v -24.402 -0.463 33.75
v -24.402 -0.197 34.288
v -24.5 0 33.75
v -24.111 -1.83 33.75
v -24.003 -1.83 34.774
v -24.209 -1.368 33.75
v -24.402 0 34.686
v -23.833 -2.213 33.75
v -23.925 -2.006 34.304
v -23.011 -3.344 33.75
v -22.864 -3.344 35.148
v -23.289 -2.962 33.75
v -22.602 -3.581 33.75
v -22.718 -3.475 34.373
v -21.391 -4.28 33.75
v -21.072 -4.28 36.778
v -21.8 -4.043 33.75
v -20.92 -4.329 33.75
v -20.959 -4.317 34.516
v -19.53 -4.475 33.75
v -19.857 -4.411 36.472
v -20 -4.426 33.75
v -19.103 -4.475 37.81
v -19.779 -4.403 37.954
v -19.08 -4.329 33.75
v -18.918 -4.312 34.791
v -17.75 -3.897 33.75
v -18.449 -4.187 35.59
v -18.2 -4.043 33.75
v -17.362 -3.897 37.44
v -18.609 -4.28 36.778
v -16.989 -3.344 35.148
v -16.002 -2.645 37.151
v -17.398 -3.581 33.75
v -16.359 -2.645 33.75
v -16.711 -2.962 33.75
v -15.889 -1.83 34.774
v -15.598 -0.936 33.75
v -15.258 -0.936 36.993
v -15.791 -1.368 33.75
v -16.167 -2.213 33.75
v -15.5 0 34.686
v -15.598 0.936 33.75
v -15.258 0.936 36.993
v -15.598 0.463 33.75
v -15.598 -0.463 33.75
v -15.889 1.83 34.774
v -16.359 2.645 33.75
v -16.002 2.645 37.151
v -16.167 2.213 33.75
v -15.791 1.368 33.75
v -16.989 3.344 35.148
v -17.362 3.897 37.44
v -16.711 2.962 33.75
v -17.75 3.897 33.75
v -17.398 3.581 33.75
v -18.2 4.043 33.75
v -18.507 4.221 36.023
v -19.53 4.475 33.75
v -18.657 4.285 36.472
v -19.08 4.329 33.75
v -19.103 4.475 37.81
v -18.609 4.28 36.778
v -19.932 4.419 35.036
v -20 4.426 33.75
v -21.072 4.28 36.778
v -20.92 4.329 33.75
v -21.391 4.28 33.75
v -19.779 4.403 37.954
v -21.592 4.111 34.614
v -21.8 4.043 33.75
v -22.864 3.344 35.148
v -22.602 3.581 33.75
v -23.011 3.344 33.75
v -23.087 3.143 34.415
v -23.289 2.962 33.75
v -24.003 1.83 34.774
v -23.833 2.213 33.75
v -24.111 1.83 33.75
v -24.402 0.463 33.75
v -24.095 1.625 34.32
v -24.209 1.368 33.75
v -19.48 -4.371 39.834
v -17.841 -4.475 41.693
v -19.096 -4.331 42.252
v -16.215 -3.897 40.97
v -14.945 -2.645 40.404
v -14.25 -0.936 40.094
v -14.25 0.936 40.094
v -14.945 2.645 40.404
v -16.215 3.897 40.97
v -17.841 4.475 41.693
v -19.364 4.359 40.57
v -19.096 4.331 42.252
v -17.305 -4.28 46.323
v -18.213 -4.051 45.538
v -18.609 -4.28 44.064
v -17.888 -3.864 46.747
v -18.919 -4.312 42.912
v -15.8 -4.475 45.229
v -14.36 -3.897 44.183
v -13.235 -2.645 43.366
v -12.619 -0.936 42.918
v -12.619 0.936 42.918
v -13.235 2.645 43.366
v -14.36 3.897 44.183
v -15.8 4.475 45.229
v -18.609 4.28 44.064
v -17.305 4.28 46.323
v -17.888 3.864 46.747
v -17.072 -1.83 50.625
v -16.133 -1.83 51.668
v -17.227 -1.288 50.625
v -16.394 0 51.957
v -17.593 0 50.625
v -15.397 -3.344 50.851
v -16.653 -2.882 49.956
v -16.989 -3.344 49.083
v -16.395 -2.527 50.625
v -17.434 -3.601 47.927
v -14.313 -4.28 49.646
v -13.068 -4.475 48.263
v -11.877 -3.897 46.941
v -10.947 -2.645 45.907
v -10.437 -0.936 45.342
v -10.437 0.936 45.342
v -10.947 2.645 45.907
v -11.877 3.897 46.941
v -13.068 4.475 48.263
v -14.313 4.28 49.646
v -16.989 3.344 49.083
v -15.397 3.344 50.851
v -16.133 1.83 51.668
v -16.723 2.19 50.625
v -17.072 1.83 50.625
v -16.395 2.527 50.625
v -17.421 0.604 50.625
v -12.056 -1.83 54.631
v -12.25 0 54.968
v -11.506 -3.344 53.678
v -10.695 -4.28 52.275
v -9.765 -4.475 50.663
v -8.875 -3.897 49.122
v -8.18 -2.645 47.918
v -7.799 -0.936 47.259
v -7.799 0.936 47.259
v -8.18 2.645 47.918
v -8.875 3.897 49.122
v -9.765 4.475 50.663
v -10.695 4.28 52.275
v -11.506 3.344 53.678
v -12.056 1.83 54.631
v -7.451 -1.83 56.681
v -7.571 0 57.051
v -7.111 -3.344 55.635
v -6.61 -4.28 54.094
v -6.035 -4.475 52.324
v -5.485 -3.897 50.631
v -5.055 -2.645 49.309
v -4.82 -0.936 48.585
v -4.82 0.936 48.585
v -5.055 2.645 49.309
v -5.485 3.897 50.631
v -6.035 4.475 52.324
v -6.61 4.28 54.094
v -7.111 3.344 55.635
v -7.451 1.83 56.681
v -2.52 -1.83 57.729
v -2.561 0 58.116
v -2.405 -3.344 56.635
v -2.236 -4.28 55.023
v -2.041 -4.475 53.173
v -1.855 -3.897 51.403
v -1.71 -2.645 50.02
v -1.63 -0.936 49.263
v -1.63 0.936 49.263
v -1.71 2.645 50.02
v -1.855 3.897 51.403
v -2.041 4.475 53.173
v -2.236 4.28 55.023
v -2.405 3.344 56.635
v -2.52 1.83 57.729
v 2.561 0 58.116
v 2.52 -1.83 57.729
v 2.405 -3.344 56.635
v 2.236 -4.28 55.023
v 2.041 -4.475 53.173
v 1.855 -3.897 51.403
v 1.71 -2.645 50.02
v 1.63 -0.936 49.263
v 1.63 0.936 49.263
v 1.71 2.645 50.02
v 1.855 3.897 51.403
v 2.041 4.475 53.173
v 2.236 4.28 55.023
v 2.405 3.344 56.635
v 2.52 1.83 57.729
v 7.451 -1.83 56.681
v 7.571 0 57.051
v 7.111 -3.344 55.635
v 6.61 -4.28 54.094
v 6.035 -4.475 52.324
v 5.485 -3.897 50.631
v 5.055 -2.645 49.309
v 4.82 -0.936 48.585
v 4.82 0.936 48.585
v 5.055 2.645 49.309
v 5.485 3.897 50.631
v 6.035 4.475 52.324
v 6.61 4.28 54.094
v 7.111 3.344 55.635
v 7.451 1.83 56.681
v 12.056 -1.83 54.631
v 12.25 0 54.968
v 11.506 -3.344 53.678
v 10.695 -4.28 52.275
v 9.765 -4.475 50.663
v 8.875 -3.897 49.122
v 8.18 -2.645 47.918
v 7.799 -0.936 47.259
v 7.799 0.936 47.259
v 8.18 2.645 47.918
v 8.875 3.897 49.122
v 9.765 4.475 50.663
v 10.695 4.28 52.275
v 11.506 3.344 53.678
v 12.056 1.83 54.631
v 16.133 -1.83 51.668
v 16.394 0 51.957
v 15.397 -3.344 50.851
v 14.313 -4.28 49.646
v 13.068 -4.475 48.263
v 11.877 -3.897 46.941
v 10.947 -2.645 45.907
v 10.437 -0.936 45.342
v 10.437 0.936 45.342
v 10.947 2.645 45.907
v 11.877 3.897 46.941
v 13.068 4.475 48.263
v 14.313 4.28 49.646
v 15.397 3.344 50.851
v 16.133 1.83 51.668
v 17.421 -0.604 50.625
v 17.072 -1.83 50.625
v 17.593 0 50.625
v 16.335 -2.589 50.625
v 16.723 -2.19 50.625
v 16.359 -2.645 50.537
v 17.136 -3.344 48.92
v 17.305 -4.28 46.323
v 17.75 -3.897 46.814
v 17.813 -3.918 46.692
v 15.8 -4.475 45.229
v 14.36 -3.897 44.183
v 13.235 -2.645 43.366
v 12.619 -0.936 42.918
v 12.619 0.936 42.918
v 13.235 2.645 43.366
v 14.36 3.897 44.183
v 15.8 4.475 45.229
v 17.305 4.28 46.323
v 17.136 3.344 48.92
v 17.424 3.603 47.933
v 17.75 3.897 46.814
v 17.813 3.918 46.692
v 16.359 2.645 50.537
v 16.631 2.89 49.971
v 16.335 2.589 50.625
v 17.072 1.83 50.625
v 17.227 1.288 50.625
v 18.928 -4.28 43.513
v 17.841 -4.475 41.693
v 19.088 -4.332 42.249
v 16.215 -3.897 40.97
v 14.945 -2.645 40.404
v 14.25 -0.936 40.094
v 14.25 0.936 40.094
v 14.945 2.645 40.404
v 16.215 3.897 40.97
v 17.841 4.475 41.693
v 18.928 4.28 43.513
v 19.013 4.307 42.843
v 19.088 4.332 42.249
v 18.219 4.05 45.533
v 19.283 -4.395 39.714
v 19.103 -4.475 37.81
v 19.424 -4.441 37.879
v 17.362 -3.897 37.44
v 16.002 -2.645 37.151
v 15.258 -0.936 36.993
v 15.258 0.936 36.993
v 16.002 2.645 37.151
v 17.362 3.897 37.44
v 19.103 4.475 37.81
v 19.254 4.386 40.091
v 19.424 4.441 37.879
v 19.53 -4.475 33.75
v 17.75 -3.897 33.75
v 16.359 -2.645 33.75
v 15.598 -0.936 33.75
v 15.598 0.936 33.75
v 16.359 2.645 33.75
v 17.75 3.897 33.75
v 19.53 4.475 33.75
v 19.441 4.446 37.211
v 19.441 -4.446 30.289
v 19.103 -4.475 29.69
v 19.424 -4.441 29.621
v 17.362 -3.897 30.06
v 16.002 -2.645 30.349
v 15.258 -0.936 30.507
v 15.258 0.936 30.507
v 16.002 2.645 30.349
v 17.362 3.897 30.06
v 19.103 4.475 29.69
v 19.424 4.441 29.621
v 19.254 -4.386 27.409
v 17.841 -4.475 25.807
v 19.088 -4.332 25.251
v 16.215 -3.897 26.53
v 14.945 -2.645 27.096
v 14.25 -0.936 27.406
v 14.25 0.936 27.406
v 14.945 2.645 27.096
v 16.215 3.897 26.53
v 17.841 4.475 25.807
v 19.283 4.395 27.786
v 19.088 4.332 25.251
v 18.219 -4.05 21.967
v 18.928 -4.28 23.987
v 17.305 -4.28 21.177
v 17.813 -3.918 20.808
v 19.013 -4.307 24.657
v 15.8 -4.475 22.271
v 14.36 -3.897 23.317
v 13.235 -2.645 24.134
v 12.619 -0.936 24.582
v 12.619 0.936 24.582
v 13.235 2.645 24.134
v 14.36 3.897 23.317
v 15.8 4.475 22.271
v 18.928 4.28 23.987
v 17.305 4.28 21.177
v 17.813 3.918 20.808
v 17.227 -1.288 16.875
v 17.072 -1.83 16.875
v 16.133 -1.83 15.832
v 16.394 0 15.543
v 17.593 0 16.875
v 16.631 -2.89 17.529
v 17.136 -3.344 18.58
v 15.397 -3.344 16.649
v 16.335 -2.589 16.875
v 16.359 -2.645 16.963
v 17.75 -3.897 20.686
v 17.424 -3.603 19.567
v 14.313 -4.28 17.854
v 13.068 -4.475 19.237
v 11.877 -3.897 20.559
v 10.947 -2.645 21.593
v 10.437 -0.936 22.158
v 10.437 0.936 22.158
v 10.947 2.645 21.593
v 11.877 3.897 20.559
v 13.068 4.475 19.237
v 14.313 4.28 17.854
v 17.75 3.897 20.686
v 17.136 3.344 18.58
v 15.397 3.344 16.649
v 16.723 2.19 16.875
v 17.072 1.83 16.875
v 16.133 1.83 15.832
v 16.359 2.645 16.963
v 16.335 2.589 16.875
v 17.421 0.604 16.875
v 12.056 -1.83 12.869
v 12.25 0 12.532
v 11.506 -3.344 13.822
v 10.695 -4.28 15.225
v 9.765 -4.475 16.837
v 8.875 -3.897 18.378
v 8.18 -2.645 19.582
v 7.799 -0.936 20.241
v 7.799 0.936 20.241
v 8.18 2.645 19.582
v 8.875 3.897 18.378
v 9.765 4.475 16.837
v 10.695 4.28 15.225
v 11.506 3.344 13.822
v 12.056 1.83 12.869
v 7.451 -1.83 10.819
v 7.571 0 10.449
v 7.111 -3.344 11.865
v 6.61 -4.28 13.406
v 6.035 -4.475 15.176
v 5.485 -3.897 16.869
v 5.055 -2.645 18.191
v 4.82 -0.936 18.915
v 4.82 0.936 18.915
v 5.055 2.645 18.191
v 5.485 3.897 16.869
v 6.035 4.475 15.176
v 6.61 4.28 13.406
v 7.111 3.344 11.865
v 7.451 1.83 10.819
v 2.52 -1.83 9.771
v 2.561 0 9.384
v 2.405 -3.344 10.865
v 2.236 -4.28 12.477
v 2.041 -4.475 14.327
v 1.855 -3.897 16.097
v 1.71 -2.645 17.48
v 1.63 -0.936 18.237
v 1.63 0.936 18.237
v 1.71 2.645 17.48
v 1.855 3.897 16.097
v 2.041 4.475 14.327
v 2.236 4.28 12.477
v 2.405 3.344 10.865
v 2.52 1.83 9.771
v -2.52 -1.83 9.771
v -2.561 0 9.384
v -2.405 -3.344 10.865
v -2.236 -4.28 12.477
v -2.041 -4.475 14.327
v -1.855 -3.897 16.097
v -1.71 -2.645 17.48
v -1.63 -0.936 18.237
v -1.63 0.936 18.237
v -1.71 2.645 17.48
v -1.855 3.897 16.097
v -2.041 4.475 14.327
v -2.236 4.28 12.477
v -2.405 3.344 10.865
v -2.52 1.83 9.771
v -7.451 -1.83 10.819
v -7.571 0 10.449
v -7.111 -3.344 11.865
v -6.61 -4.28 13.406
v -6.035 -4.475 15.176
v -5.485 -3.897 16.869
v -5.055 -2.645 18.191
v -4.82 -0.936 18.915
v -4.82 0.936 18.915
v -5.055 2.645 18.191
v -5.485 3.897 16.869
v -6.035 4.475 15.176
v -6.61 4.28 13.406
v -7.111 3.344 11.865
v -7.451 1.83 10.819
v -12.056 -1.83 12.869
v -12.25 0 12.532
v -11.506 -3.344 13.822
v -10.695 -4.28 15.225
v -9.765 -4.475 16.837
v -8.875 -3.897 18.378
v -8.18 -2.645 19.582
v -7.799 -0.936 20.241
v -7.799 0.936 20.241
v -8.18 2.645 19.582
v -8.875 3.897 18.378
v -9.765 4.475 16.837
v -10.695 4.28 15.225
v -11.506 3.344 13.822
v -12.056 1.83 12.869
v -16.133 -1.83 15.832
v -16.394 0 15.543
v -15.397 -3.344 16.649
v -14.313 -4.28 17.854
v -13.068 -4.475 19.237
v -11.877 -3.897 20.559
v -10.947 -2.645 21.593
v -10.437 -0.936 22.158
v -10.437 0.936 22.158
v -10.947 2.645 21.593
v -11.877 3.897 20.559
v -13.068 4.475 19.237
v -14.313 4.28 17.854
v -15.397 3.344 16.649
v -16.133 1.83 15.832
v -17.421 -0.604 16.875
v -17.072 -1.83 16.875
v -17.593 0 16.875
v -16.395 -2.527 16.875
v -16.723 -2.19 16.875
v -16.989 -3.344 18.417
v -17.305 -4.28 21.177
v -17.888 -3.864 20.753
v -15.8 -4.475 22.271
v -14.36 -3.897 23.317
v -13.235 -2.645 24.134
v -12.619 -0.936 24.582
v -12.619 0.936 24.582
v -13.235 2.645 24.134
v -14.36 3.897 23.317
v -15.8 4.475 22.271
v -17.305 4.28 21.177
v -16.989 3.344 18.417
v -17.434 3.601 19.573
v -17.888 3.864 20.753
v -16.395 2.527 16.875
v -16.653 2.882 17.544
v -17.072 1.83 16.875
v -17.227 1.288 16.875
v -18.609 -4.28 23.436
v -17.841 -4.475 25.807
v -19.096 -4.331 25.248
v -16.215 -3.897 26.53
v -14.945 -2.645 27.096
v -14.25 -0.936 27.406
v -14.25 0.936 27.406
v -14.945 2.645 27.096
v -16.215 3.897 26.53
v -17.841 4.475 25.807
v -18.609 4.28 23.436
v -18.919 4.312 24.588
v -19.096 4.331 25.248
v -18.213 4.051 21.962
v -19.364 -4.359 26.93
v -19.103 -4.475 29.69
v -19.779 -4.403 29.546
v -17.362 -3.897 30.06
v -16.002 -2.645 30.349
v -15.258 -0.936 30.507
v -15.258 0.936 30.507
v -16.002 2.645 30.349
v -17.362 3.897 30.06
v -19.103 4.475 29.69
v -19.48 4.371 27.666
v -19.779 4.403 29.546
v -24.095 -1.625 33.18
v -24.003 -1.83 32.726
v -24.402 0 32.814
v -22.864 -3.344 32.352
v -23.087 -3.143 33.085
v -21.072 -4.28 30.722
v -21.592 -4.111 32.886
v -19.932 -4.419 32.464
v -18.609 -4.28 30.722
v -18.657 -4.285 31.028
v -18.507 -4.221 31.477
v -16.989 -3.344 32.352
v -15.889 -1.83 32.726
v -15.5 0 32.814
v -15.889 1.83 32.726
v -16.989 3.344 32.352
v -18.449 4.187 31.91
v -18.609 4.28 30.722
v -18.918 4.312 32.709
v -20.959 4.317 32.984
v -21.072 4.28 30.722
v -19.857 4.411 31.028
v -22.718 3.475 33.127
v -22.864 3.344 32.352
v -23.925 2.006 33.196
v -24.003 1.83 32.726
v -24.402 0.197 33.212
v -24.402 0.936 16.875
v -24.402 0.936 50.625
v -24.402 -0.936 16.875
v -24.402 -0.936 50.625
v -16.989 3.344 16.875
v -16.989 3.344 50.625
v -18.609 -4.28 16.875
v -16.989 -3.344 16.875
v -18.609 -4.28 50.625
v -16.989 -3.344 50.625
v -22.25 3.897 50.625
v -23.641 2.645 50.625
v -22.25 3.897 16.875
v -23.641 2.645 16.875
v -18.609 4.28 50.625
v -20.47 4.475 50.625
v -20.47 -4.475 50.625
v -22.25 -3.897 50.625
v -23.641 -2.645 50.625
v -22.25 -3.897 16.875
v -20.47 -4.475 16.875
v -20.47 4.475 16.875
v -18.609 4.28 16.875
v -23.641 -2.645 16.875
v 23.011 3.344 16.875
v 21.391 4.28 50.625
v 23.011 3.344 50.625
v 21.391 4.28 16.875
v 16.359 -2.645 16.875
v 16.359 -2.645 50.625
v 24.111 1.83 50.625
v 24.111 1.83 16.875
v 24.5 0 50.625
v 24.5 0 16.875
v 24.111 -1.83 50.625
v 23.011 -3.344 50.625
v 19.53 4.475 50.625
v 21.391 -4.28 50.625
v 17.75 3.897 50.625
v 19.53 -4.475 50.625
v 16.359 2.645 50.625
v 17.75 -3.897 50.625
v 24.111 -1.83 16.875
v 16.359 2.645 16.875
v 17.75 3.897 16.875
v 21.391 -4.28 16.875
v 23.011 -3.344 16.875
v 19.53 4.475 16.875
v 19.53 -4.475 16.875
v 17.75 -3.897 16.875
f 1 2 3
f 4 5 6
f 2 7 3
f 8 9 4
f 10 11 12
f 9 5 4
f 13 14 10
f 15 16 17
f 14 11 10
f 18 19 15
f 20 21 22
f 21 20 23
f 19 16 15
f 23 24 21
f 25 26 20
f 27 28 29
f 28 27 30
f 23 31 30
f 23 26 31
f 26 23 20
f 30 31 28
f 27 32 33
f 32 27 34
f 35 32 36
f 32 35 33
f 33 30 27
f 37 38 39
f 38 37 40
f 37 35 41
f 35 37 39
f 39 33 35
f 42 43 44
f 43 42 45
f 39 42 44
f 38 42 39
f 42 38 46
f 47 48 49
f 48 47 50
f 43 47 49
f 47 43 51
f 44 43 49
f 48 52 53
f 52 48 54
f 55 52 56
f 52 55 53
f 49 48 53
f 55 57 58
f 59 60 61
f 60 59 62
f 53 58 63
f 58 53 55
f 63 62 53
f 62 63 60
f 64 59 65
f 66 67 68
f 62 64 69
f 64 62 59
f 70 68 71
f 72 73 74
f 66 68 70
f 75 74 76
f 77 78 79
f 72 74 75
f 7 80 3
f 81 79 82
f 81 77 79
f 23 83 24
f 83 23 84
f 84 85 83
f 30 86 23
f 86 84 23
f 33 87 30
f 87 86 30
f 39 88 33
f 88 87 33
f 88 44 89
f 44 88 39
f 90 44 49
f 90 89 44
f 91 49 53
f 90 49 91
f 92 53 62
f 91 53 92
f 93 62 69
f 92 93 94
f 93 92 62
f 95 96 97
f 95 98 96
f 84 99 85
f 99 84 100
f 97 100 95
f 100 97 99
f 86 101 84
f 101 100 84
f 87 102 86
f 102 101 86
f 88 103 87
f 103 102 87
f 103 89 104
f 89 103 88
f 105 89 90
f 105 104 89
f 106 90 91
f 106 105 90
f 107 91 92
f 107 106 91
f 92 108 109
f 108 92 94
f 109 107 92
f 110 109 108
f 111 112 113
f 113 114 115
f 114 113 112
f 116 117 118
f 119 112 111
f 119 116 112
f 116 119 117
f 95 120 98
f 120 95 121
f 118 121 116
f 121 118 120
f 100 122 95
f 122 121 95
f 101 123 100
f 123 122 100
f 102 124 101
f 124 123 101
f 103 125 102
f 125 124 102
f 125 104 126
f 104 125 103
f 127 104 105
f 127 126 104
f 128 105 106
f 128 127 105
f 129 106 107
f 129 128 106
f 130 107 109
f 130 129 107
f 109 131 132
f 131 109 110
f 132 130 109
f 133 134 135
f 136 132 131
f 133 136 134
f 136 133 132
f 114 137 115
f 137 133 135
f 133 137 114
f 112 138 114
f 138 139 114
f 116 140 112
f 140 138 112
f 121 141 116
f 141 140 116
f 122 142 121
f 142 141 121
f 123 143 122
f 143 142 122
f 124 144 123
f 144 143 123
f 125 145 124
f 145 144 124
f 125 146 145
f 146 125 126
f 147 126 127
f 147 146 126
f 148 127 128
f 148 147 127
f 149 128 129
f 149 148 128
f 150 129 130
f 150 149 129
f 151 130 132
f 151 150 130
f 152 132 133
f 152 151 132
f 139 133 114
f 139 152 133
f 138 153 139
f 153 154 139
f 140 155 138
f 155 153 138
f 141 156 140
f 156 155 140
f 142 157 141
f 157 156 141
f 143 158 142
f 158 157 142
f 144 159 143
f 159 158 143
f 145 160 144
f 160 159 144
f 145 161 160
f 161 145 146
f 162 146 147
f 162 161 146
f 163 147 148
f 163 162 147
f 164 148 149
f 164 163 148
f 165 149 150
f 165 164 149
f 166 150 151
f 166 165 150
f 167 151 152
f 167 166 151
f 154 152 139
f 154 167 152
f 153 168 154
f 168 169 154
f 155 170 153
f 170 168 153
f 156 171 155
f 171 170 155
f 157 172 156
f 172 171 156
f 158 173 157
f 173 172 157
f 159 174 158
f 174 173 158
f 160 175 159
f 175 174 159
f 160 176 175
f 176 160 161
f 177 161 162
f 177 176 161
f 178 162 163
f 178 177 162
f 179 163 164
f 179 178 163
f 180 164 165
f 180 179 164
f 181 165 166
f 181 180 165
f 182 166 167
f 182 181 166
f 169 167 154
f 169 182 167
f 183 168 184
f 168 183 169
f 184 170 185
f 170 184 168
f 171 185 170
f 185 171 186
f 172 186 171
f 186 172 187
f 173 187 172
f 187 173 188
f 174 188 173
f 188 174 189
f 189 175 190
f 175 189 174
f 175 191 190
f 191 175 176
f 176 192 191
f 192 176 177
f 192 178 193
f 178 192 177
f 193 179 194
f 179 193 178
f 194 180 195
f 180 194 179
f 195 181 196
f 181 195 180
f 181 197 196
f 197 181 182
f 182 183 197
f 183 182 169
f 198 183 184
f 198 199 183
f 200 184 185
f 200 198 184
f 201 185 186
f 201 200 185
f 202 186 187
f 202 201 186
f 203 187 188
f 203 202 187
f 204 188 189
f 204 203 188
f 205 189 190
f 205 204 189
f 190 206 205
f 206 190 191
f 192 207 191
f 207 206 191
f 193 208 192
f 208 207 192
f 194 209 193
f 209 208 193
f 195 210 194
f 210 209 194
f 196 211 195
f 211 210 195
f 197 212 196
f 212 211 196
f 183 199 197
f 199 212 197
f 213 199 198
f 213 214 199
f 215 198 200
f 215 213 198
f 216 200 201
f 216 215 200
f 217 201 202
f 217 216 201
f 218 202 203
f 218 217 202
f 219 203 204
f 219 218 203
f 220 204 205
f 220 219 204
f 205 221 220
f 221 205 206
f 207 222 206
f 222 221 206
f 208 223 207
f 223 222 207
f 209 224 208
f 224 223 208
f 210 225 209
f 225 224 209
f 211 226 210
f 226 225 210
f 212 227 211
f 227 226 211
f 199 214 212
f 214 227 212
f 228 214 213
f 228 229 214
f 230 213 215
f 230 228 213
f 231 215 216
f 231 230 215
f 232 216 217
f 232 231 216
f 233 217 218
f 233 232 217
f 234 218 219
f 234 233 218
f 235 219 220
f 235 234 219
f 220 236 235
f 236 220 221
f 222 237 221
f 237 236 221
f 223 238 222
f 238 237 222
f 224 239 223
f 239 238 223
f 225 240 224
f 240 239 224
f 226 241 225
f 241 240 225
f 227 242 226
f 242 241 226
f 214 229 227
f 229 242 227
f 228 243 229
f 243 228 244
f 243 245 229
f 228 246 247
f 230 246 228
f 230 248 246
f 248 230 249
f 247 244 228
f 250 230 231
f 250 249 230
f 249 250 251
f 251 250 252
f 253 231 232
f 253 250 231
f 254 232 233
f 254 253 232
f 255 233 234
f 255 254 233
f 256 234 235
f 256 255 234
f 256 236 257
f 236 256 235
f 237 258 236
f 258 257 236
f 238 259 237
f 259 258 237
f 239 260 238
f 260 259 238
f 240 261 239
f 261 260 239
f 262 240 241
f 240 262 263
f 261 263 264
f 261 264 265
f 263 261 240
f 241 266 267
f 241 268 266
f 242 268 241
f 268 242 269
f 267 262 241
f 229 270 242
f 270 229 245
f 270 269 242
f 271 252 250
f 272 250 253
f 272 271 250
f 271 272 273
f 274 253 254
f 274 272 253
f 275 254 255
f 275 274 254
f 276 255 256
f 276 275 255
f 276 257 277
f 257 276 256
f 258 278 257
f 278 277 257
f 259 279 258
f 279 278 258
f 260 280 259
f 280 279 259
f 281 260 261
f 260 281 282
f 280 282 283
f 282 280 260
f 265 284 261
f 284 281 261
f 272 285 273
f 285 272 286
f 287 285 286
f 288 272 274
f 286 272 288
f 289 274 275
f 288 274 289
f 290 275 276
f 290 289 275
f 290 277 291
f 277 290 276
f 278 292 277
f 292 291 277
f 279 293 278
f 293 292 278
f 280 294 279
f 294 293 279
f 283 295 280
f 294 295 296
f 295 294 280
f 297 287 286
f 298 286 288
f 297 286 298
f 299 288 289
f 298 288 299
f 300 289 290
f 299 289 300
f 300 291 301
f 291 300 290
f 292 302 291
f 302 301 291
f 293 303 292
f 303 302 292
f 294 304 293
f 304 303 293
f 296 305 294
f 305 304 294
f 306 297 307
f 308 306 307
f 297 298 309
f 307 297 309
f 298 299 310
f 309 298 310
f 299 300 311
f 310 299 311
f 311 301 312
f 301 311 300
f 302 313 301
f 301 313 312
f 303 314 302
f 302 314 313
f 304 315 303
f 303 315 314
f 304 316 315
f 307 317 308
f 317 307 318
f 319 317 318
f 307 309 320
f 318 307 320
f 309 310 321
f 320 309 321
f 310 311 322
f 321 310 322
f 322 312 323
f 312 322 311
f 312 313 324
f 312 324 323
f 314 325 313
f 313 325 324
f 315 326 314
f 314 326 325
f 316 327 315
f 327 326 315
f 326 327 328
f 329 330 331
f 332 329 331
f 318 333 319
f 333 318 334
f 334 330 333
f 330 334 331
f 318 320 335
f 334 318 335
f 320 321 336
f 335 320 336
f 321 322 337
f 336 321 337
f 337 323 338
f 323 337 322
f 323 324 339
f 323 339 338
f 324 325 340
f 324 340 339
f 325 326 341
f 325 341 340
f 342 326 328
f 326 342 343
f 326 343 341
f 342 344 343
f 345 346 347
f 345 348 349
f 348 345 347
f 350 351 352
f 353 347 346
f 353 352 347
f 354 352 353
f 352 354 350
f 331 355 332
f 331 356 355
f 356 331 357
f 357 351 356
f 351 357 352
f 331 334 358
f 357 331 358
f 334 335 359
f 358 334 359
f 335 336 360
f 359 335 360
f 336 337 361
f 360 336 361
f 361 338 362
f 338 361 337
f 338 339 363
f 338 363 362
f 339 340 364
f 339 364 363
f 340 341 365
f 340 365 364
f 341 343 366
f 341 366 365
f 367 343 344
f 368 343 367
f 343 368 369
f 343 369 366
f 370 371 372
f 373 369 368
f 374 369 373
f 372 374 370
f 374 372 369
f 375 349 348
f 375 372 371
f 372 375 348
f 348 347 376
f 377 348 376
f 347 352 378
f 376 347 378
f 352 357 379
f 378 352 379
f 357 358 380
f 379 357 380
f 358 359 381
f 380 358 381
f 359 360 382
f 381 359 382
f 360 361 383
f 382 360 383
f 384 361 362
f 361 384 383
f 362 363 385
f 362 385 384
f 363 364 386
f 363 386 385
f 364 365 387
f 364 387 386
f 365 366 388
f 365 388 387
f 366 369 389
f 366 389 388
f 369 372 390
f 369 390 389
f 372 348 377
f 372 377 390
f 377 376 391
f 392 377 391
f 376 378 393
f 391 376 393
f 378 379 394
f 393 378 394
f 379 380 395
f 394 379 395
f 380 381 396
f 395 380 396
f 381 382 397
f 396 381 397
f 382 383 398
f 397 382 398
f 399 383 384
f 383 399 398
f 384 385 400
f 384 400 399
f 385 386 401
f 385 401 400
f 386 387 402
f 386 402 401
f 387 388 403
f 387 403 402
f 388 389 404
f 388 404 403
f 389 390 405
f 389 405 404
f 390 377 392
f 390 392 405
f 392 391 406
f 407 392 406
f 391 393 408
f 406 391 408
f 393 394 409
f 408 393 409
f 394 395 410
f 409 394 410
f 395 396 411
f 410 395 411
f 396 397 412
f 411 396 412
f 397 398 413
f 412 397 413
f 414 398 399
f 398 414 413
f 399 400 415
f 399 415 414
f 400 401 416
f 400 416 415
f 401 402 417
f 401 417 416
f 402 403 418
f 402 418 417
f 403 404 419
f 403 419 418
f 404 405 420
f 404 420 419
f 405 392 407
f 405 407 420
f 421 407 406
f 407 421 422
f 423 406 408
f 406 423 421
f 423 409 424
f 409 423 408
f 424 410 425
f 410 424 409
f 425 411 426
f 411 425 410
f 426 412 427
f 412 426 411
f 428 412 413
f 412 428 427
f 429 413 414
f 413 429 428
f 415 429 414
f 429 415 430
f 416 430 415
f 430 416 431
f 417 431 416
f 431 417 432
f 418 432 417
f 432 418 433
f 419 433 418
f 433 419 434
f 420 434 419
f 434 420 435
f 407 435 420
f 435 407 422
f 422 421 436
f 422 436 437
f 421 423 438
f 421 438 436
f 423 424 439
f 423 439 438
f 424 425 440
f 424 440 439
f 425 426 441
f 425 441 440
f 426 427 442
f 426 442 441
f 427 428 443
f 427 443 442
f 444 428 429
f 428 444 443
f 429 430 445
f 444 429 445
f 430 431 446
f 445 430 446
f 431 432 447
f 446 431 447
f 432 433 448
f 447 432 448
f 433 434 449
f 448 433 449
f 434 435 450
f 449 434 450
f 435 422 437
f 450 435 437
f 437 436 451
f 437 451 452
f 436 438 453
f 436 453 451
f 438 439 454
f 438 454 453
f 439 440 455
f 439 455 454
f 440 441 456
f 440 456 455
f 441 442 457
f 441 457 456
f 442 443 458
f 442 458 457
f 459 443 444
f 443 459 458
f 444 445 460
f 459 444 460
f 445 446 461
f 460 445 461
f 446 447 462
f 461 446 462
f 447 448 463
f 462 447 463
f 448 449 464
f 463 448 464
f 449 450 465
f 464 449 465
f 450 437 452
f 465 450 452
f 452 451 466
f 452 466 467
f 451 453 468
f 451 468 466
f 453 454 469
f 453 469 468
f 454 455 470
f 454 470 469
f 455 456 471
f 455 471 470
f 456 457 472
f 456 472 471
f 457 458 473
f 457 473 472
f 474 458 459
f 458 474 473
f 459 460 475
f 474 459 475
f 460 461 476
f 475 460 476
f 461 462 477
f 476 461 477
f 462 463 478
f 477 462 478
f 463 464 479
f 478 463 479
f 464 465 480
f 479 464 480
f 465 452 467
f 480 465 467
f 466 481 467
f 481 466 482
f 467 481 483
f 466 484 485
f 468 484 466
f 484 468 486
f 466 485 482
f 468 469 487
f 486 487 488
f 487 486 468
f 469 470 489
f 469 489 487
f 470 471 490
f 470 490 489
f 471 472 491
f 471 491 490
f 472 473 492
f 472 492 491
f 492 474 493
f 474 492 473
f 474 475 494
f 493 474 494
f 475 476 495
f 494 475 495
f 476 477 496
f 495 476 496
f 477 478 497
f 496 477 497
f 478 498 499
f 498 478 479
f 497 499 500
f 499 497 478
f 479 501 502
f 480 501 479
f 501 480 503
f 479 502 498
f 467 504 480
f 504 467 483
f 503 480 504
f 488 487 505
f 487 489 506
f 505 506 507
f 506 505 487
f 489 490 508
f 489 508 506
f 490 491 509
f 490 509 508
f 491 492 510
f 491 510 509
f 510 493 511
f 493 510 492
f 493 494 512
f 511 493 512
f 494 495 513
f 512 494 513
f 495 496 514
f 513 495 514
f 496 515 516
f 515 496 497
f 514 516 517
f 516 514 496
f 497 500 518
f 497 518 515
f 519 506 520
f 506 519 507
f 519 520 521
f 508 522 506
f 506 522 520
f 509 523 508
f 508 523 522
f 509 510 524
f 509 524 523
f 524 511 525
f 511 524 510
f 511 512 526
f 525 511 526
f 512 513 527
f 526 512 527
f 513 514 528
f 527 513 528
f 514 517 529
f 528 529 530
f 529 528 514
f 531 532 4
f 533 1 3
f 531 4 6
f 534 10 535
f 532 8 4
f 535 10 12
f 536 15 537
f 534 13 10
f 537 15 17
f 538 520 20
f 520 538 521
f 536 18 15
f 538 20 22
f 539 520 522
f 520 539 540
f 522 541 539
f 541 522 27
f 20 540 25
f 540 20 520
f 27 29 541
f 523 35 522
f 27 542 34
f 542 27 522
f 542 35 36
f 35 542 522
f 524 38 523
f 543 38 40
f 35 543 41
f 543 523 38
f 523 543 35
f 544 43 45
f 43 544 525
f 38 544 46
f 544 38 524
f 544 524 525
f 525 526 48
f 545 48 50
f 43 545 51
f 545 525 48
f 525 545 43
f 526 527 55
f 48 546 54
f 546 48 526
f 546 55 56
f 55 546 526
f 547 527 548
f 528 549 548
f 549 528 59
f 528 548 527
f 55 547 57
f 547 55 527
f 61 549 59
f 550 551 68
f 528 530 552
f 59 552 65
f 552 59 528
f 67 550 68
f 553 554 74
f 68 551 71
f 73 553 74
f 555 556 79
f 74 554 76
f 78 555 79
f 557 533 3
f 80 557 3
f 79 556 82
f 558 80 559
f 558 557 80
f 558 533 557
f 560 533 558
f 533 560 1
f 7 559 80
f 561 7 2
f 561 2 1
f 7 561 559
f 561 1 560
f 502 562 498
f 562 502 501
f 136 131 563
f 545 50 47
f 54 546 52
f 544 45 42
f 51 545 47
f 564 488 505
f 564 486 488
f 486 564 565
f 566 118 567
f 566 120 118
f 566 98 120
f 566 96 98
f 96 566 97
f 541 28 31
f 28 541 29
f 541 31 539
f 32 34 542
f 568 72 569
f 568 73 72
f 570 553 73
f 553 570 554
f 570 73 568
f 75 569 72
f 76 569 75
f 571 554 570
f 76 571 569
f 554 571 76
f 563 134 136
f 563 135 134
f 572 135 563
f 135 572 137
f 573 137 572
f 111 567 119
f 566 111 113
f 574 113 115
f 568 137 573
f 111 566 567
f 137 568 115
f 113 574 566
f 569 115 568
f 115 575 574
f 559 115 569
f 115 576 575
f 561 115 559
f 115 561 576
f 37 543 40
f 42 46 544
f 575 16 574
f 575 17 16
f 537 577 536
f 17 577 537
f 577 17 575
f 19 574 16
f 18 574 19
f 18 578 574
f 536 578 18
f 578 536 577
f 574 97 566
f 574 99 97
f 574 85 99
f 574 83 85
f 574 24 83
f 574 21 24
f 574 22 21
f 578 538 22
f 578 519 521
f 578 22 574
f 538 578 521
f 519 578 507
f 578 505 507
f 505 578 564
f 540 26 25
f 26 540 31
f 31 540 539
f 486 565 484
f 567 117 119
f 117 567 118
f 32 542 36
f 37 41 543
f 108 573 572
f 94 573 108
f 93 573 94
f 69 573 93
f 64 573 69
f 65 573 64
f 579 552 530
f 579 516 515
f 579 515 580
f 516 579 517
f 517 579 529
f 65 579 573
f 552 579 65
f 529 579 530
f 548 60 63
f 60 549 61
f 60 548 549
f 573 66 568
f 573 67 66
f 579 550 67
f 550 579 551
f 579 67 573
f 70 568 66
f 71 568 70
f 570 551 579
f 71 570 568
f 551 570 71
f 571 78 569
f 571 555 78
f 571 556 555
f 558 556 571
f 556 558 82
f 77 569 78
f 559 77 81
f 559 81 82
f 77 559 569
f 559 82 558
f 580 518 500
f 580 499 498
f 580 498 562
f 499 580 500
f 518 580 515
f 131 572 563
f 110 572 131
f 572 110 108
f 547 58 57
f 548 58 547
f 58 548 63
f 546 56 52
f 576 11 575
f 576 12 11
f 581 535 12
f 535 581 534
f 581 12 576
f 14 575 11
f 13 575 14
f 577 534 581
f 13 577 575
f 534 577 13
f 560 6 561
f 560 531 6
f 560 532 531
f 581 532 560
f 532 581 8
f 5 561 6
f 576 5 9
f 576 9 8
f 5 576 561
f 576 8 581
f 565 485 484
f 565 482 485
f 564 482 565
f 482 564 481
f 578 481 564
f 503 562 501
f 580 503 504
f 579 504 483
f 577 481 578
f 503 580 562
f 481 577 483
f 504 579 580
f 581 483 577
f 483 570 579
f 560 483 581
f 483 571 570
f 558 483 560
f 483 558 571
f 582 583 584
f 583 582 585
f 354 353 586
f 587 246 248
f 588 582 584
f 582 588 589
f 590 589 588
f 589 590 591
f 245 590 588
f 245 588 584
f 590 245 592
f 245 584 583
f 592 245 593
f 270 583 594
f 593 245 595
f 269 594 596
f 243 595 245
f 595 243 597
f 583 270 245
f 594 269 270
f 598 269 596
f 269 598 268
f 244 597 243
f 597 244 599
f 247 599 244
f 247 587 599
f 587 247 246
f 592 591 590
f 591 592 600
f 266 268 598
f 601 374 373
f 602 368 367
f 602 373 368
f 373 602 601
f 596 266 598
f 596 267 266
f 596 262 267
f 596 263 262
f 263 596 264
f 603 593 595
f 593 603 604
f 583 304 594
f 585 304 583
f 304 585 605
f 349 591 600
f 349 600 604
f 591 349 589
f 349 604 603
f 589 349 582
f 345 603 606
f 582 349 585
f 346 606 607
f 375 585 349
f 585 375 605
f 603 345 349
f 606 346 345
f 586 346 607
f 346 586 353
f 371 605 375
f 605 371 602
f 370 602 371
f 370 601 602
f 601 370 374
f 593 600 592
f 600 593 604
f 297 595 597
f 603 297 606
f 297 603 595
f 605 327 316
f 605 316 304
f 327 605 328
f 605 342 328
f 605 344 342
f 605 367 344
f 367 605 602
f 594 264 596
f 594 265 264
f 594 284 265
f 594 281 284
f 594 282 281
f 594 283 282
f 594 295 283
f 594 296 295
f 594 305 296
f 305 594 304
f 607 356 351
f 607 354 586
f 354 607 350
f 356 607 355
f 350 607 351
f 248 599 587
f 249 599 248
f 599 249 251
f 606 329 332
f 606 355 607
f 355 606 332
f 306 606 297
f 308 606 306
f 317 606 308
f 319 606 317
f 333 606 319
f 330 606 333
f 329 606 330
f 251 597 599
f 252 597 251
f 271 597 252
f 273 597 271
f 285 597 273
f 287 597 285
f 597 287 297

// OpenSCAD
/* doodle-meta {"version":1,"parameters":{"bend_radius":{"label":"Bend Radius","description":"Radius of the semi-circular top bend","unit":"mm","feature":"bend"},"leg_length":{"label":"Leg Length","description":"Length of the straight legs extending downwards","unit":"mm","feature":"legs"},"rod_diameter":{"label":"Rod Diameter","description":"Diameter of the circular cross-section","unit":"mm","feature":"cross_section"}},"features":{"bend":{"kind":"dimension","axis":"z","label":"Bend Radius"},"legs":{"kind":"dimension","axis":"z","label":"Leg Length"},"cross_section":{"kind":"dimension","axis":"x","label":"Rod Diameter"}}} */

// Parameters
bend_radius = 20;
leg_length = 33.75;
rod_diameter = 9;

// Derived dimensions
rod_radius = rod_diameter / 2;
total_height = leg_length + bend_radius + rod_radius;
total_width = 2 * bend_radius + rod_diameter;

// Ensure the part sits on the build plate (Z=0)
// The legs extend from Z=0 to Z=leg_length.
// The bend center is at Z=leg_length.
// The top of the bend is at Z=leg_length + bend_radius + rod_radius.

// Main Body Construction
// 1. Left Leg
translate([-bend_radius, 0, leg_length])
    cylinder(h=leg_length, r=rod_radius, center=true);

// 2. Right Leg
translate([bend_radius, 0, leg_length])
    cylinder(h=leg_length, r=rod_radius, center=true);

// 3. Semi-circular Bend
// The bend connects the tops of the legs.
// Center of the bend arc is at (0, 0, leg_length).
// We create a torus segment.
// Torus major radius = bend_radius, minor radius = rod_radius.
// We need the upper half (Z > leg_length).
// A full torus centered at (0,0,leg_length) in the XY plane (rotated 90 deg around X)
// would have its tube centerline in the XZ plane? No.
// Standard torus: axis is Z. Tube centerline is in XY plane.
// We want the tube centerline to be in the XZ plane (vertical arc).
// So we rotate the torus 90 degrees around X.
// Then we intersect with a cube to keep only the top half (Z >= leg_length).

translate([0, 0, leg_length])
    rotate([90, 0, 0])
    intersection() {
        torus(r=bend_radius, r2=rod_radius);
        // Keep only the part where Z >= 0 (relative to the torus center)
        // Since we rotated 90 around X, the "up" direction of the torus tube
        // corresponds to +Z in the global frame if we think about the arc.
        // Actually, let's verify.
        // Torus default: ring in XY, tube around it.
        // Rotate 90 around X: Ring moves to XZ plane.
        // The "top" of the ring (positive Z) is what we want.
        // So we intersect with a cube covering Z >= 0.
        translate([0, 0, 0])
            cube([total_width + rod_diameter, total_width + rod_diameter, total_height], center=true);
    }

// Helper module for Torus
module torus(r, r2) {
    rotate_extrude(convexity=10)
        translate([r, 0, 0])
        circle(r=r2);
}
